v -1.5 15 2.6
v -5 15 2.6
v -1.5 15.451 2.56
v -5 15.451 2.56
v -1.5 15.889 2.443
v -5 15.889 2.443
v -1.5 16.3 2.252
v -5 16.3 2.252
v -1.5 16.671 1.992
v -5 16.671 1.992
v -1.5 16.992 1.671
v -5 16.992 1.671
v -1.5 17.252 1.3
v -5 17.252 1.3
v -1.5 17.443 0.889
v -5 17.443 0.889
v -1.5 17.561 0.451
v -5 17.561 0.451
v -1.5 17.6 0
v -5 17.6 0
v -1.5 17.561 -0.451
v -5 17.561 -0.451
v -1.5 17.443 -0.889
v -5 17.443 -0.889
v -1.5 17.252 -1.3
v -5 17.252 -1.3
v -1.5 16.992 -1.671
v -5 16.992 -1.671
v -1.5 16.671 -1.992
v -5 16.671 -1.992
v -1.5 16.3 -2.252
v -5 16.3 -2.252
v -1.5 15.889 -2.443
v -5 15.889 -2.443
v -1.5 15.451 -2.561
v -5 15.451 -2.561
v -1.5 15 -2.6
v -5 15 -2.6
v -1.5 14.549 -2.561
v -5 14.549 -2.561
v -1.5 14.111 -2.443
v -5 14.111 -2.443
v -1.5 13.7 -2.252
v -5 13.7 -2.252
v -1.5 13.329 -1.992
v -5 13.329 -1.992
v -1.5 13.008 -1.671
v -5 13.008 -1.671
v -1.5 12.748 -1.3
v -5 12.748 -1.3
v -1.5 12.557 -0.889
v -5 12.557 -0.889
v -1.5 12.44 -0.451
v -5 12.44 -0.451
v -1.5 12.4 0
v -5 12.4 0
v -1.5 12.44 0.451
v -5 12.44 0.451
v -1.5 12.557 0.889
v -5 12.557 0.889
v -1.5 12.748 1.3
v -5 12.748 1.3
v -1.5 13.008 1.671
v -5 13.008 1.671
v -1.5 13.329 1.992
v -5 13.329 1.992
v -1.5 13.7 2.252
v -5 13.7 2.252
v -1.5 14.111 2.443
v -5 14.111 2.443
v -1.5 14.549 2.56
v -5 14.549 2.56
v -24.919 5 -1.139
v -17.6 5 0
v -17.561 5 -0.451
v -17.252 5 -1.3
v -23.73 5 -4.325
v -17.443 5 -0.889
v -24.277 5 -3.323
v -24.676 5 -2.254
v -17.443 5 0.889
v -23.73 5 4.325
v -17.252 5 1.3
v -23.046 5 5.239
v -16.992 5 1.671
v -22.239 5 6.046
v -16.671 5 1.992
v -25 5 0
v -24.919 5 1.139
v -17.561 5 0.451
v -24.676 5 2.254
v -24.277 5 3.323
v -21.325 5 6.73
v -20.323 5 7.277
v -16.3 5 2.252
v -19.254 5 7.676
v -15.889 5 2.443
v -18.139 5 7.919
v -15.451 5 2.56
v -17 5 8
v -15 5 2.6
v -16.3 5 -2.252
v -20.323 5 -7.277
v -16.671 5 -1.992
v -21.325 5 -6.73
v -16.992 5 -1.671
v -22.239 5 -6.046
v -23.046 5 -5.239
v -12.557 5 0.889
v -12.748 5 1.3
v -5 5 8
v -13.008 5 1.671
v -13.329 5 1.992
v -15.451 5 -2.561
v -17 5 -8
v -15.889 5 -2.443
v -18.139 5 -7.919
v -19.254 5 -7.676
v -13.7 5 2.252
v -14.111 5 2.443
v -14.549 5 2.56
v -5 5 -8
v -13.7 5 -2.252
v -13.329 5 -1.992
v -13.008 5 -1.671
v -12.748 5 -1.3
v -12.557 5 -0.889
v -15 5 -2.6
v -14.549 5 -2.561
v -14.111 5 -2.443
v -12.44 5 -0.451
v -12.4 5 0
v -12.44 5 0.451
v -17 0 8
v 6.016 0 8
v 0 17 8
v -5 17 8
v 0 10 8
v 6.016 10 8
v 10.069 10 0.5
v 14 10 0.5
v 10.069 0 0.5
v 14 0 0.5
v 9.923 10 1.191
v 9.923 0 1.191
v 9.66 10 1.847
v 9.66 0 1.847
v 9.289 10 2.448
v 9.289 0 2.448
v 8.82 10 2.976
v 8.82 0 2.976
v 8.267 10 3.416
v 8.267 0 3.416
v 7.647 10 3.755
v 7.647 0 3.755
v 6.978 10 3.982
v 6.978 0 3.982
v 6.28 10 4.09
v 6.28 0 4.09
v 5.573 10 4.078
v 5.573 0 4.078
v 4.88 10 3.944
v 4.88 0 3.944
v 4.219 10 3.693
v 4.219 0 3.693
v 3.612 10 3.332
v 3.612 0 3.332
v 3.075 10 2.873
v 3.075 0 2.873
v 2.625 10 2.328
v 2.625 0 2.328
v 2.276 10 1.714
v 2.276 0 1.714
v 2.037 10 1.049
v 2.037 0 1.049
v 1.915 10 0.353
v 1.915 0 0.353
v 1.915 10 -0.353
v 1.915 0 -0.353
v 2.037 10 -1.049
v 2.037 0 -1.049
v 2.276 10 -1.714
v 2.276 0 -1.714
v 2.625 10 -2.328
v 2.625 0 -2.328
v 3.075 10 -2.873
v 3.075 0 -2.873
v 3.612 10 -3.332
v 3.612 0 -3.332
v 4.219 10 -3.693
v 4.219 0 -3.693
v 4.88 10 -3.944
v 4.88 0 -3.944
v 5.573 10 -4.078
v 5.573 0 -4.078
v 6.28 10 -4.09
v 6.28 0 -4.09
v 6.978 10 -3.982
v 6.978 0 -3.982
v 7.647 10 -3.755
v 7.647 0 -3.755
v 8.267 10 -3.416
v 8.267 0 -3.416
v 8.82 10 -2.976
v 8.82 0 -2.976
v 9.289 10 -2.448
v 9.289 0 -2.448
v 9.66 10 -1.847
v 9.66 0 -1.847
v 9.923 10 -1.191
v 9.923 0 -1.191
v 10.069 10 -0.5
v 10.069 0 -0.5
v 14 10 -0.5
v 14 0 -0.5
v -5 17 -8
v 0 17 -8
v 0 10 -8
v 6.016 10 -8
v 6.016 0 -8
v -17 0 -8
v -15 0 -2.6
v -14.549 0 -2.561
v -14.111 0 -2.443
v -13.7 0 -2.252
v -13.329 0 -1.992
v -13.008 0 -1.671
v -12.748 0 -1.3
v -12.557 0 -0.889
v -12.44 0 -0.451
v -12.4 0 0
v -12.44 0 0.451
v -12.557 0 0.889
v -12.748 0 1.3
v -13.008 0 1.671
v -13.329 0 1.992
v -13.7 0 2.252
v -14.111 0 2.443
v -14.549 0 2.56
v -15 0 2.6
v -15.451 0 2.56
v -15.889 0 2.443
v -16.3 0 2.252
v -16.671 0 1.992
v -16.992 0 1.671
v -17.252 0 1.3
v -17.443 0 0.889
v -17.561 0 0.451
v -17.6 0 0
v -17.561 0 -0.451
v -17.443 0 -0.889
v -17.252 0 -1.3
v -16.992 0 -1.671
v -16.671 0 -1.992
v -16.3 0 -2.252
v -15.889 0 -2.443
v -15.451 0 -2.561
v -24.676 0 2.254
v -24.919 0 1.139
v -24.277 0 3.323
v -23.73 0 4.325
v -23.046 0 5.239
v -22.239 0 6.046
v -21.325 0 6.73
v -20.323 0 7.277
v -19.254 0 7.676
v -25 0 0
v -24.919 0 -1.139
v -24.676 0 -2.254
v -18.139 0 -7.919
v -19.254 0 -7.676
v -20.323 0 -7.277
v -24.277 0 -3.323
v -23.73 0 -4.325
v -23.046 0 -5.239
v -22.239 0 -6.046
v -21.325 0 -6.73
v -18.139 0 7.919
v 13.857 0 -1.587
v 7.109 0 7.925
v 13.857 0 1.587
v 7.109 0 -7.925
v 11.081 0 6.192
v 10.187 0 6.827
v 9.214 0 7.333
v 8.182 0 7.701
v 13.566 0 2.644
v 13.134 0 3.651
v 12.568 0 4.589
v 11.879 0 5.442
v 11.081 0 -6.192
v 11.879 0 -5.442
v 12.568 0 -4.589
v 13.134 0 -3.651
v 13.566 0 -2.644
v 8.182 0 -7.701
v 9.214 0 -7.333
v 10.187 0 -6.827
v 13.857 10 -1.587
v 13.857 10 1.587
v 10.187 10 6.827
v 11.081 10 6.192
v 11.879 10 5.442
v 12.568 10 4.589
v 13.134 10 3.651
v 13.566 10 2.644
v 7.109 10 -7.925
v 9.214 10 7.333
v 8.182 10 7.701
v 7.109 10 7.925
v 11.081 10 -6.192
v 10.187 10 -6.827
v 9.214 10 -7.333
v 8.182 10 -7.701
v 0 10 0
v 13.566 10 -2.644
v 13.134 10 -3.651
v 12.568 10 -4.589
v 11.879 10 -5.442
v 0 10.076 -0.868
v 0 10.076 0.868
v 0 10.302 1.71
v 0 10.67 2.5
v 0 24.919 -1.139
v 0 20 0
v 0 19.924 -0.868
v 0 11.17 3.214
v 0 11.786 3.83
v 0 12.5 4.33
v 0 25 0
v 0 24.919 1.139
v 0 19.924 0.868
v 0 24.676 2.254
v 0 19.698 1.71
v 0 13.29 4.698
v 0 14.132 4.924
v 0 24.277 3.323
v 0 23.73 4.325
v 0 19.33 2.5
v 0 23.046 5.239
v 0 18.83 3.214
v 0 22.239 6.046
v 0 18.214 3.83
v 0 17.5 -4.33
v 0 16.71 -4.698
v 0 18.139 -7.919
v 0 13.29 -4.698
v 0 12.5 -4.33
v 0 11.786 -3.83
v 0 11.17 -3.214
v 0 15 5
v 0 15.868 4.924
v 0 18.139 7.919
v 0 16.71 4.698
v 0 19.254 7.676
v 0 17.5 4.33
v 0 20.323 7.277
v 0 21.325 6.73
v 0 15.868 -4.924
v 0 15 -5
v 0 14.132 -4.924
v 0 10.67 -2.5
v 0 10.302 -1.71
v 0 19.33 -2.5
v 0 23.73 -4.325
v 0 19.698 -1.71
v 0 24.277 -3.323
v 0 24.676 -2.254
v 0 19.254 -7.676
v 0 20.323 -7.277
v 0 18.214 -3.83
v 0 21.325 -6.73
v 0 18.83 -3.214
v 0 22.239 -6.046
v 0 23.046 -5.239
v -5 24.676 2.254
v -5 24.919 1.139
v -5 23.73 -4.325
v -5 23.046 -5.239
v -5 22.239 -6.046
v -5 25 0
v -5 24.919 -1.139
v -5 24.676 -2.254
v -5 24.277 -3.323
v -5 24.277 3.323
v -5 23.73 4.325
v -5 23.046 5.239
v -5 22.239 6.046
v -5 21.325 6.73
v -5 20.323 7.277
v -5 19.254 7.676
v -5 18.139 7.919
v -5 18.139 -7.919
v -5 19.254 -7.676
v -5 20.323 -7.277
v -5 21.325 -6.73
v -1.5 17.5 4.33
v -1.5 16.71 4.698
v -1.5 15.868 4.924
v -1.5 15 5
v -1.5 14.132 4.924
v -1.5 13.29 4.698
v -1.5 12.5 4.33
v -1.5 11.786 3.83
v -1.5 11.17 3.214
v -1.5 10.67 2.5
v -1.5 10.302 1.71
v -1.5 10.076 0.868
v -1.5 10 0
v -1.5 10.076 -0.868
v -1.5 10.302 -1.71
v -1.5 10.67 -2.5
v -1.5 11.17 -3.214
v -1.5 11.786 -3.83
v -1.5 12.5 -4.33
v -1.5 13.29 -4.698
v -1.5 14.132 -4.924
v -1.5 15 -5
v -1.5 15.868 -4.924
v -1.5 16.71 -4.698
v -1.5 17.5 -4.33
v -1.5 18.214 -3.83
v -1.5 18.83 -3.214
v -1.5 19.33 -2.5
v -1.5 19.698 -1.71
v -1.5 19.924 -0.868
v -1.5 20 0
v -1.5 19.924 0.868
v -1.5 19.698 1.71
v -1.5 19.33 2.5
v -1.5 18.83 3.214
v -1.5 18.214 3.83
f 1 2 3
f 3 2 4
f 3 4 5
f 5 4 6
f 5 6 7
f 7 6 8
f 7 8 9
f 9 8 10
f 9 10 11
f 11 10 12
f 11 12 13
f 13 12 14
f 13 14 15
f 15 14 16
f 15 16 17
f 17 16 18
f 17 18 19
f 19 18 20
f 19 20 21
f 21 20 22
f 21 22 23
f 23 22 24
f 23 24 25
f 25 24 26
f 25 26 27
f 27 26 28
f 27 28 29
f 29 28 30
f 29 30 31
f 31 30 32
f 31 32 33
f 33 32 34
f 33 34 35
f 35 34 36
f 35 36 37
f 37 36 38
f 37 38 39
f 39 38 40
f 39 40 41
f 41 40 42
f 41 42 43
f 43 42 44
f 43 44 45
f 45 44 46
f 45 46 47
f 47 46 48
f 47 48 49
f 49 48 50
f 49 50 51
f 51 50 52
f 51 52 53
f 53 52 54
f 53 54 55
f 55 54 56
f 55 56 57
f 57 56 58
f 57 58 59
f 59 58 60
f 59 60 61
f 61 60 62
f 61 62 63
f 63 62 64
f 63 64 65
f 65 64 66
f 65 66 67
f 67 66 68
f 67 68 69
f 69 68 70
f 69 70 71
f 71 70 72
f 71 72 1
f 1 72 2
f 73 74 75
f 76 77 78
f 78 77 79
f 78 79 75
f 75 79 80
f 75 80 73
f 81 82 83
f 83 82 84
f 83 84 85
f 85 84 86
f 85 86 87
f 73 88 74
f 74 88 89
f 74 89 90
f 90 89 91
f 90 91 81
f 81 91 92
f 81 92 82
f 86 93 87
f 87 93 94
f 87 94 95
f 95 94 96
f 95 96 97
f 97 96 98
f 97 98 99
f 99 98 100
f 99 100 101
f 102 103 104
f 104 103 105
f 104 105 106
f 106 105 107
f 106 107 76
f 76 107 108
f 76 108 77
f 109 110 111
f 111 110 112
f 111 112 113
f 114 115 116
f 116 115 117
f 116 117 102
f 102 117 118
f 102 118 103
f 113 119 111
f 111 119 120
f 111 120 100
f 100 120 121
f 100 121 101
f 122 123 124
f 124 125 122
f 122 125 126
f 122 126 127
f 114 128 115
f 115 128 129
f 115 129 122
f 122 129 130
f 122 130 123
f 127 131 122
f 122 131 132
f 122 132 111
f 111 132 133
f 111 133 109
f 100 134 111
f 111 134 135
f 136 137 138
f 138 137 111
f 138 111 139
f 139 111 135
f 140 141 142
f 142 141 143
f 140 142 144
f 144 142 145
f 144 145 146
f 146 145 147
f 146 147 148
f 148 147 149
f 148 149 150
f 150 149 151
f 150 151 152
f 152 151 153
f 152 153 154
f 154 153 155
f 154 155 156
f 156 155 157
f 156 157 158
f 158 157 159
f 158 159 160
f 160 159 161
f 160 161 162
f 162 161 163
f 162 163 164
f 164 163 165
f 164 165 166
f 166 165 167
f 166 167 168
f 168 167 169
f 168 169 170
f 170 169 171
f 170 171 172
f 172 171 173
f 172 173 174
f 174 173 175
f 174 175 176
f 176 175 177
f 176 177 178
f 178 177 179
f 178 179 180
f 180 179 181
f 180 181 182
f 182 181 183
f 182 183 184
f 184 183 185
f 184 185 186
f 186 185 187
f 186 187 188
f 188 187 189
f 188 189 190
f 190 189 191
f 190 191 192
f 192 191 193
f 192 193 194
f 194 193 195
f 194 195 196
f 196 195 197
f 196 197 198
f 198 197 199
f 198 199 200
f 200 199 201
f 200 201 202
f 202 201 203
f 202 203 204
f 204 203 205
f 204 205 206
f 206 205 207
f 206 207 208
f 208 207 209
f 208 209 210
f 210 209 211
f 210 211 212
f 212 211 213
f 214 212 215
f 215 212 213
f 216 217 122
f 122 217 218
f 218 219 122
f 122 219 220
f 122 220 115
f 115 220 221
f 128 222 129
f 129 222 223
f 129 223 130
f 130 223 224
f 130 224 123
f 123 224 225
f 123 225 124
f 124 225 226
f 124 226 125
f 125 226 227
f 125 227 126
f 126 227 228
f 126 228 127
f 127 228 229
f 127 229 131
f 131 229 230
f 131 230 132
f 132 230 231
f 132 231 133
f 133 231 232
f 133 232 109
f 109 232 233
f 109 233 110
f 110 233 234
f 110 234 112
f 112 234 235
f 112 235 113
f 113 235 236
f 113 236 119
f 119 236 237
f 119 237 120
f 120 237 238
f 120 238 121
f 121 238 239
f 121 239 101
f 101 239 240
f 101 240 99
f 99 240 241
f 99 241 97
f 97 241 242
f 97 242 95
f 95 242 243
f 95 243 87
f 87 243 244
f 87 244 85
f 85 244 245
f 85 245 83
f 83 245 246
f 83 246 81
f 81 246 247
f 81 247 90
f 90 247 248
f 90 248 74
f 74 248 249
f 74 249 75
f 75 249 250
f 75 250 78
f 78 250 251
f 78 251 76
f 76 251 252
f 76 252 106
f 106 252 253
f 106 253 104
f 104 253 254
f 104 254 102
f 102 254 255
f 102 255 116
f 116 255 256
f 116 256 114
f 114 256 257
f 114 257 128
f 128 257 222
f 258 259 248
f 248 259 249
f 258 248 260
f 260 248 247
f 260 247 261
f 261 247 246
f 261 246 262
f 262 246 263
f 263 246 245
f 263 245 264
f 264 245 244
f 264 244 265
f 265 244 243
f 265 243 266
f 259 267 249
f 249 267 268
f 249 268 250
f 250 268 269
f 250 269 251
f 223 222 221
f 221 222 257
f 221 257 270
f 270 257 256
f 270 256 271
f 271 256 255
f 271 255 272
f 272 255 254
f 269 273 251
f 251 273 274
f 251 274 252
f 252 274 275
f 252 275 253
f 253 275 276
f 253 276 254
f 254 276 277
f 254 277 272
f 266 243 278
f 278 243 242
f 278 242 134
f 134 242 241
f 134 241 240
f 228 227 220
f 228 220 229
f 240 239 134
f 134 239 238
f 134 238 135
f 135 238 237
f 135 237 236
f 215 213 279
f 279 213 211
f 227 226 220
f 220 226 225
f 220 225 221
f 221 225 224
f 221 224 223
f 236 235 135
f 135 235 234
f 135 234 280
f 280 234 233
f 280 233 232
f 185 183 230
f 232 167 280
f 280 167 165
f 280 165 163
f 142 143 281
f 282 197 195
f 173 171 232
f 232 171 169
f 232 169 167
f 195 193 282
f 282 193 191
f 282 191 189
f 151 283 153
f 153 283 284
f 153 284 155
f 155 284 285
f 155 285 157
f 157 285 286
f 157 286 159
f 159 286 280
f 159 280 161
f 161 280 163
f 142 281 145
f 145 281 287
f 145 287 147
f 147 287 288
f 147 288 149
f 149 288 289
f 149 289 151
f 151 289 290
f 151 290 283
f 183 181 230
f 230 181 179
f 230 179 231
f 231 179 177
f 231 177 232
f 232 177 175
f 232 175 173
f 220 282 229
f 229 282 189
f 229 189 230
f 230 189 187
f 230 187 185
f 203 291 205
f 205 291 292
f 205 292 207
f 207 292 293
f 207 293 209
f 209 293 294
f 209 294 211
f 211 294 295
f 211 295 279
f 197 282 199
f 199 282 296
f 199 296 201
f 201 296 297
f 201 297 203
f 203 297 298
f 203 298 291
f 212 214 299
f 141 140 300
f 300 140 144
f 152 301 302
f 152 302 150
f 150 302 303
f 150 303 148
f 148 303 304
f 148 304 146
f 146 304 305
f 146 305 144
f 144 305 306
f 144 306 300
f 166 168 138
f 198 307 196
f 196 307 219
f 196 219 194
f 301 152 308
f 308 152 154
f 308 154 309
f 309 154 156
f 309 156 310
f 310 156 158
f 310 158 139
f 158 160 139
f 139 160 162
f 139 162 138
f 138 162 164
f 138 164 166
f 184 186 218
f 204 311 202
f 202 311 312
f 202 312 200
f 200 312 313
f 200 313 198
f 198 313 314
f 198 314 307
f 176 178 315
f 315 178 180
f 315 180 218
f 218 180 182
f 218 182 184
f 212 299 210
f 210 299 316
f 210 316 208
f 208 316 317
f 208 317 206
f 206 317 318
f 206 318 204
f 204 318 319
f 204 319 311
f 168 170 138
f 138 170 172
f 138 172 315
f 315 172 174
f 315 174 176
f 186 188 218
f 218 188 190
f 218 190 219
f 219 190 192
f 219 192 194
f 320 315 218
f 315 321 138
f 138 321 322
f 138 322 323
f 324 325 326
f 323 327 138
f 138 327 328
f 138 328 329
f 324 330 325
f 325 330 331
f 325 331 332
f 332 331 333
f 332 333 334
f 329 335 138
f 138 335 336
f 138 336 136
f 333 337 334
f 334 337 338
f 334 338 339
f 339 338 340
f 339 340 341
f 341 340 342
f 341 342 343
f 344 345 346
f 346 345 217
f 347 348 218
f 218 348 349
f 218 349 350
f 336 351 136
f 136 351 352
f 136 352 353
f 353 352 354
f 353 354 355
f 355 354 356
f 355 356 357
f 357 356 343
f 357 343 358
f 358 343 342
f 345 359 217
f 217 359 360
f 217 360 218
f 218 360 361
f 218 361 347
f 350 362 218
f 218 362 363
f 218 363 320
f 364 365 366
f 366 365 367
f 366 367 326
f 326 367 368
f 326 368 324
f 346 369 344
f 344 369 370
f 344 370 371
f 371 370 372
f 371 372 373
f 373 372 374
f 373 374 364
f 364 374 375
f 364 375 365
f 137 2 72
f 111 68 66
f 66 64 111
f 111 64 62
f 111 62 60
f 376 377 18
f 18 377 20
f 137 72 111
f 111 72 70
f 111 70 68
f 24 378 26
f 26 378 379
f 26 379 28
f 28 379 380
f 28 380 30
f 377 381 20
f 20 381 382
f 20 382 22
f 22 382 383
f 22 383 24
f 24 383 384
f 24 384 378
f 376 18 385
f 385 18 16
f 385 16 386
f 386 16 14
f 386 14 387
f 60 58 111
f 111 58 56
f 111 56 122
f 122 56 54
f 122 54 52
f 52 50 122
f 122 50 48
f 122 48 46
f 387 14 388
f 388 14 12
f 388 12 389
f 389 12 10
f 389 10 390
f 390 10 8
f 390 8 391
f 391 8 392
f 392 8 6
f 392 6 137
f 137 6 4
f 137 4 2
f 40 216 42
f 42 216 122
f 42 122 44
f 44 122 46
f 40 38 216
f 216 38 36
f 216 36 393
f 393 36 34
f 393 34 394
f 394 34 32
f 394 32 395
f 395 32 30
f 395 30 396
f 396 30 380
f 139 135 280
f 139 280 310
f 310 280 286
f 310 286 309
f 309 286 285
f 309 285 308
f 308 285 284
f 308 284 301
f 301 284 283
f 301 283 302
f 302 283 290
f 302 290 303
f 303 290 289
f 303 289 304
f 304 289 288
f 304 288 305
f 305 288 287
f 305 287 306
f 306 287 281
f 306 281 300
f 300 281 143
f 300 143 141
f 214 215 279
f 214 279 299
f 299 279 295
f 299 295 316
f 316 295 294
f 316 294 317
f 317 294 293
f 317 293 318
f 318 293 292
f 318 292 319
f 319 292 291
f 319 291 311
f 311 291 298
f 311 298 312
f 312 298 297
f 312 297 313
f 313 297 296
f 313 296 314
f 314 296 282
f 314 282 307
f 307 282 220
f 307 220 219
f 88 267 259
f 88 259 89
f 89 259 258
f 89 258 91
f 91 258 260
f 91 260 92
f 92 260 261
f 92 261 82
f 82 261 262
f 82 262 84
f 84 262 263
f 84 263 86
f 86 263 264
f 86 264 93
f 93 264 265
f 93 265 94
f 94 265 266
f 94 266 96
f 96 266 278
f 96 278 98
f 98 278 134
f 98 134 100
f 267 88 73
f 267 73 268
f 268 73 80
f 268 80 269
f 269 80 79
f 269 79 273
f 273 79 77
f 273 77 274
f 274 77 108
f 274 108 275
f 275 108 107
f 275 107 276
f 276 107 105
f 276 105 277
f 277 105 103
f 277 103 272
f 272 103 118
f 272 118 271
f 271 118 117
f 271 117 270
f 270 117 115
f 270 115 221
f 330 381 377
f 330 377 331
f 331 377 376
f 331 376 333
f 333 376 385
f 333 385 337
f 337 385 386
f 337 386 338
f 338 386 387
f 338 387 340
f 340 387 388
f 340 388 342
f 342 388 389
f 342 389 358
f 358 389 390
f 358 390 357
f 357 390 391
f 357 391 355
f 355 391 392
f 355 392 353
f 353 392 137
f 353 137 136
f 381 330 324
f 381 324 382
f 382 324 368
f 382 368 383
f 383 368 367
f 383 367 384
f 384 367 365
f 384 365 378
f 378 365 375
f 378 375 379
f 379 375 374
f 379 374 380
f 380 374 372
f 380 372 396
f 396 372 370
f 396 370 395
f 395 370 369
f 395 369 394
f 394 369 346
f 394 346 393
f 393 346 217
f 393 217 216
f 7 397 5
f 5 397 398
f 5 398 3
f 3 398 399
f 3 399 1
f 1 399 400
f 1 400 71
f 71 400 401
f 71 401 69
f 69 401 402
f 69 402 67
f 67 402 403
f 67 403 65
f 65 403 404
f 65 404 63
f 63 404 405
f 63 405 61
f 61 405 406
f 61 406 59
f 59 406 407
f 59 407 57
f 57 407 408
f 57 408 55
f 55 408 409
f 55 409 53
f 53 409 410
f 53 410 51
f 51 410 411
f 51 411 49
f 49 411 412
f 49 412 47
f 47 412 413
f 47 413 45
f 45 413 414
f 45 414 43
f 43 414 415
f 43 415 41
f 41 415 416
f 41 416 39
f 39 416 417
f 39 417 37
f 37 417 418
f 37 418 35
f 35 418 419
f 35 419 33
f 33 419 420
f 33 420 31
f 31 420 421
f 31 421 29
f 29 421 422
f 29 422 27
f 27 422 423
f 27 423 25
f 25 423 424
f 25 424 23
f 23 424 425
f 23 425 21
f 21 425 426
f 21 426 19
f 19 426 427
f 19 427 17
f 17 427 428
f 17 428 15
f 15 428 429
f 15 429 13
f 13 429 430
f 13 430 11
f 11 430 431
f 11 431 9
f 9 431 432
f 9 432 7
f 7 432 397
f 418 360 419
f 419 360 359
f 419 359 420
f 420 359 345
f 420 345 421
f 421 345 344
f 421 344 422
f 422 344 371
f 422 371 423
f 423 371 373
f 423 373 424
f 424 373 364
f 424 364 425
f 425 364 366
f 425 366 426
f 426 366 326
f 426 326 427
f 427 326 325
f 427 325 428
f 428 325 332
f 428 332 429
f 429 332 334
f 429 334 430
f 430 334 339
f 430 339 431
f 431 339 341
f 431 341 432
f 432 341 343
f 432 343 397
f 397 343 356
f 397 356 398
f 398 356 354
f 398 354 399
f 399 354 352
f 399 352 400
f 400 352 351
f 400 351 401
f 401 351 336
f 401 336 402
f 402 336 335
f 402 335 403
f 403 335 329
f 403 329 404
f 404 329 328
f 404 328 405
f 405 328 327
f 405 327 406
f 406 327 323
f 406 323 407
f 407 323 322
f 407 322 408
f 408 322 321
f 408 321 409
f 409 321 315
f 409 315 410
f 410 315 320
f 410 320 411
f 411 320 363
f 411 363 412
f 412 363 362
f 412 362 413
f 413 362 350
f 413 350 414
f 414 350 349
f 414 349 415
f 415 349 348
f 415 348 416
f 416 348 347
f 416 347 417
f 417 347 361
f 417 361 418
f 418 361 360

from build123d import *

# Parameters (mm, degrees)
SKETCH1_R           = 2.6
BOSS_EXTRUDE2_DEPTH = 5
BOSS_EXTRUDE3_DEPTH = 10
SKETCH1_5_W         = 5
SKETCH1_5_H         = 16
BOSS_EXTRUDE4_DEPTH = 25
FILLET1_R           = 8
FILLET2_R           = 8
FILLET3_R           = 8
FILLET4_R           = 8
FILLET5_R           = 8
FILLET6_R           = 8
SKETCH3_R           = 2.6
CUT_EXTRUDE1_DEPTH  = 25
SKETCH4_R           = 5
CUT_EXTRUDE2_DEPTH  = 1.5


# Some blends are built 0.0001 mm under size
with BuildPart() as part:
    # Sketch1 → Boss-Extrude2 (new body)
    with BuildSketch(Plane(origin=(0, 0, 0), x_dir=(1, 0, 0), z_dir=(0, 1, 0))):
        with BuildLine():
            Line((-25, 8), (-25, -8))
            Line((-25, -8), (14, -8))
            Line((14, -8), (14, -0.5))
            Line((14, -0.5), (10.06939799, -0.5))
            ThreePointArc((10.06939799, -0.5), (1.9, 0), (10.06939799, 0.5))
            Line((10.06939799, 0.5), (14, 0.5))
            Line((14, 0.5), (14, 8))
            Line((14, 8), (-25, 8))
        make_face()
        with Locations(Location((-15, 0, 0), (0, 0, 270))):
            Circle(SKETCH1_R, mode=Mode.SUBTRACT)
    extrude(amount=BOSS_EXTRUDE2_DEPTH)

    # Sketch1<4> → Boss-Extrude3 (add)
    with BuildSketch(Plane(origin=(0, 0, 0), x_dir=(1, 0, 0), z_dir=(0, 1, 0))):
        with BuildLine():
            Line((14, 8), (0, 8))
            Line((0, 8), (0, -8))
            Line((0, -8), (14, -8))
            Line((14, -8), (14, -0.5))
            Line((14, -0.5), (10.06939799, -0.5))
            ThreePointArc((10.06939799, -0.5), (1.9, 0), (10.06939799, 0.5))
            Line((10.06939799, 0.5), (14, 0.5))
            Line((14, 0.5), (14, 8))
        make_face()
    extrude(amount=BOSS_EXTRUDE3_DEPTH)

    # Sketch1<5> → Boss-Extrude4 (add)
    with BuildSketch(Plane(origin=(0, 0, 0), x_dir=(1, 0, 0), z_dir=(0, 1, 0))):
        with Locations((-2.5, 0)):
            Rectangle(SKETCH1_5_W, SKETCH1_5_H)
    extrude(amount=BOSS_EXTRUDE4_DEPTH)

    # Fillet1
    # the kernel refuses this fillet: 8 mm, written as the material it takes off along each edge
    with BuildSketch(Plane(origin=(14, 29.960899278, 8), x_dir=(0, 0, -1), z_dir=(0, -1, 0))) as fillet1_piece_1:
        with BuildLine():
            CenterArc((8, -7.984359711), FILLET1_R, 93.583321698, 86.416678302)
            Line((0, -7.984359711), (-0.16, -7.984359711))
            Line((-0.16, -7.984359711), (-0.16, 0))
            Line((-0.16, 0), (0, 0.16))
            ThreePointArc((0, 0.16), (3.75, 0.16), (7.49, 0.159687194))
            Line((7.49, 0.159687194), (7.5, 0))
        make_face()
    extrude(amount=49.921798557, mode=Mode.SUBTRACT)

    # Fillet2
    # the kernel refuses this fillet: 8 mm, written as the material it takes off along each edge
    with BuildSketch(Plane(origin=(14, -19.960899278, -8), x_dir=(0, 0, 1), z_dir=(0, 1, 0))) as fillet2_piece_1:
        with BuildLine():
            CenterArc((8, -7.984359711), FILLET2_R, 93.583321698, 86.416678302)
            Line((0, -7.984359711), (-0.16, -7.984359711))
            Line((-0.16, -7.984359711), (-0.16, 0))
            Line((-0.16, 0), (0, 0.16))
            ThreePointArc((0, 0.16), (3.75, 0.16), (7.49, 0.159687194))
            Line((7.49, 0.159687194), (7.5, 0))
        make_face()
    extrude(amount=49.921798557, mode=Mode.SUBTRACT)

    # Fillet3
    fillet3_edges = [part.edges().sort_by_distance(p)[0] for p in [
        (-25, 2.5, 8),
    ]]
    fillet(fillet3_edges, radius=FILLET3_R)

    # Fillet4
    fillet4_edges = [part.edges().sort_by_distance(p)[0] for p in [
        (-25, 2.5, -8),
    ]]
    fillet(fillet4_edges, radius=FILLET4_R - 0.0001)  # a hair under: the kernel refuses the full size

    # Fillet5
    fillet5_edges = [part.edges().sort_by_distance(p)[0] for p in [
        (-2.5, 25, 8),
    ]]
    fillet(fillet5_edges, radius=FILLET5_R)

    # Fillet6
    fillet6_edges = [part.edges().sort_by_distance(p)[0] for p in [
        (-2.5, 25, -8),
    ]]
    fillet(fillet6_edges, radius=FILLET6_R - 0.0001)  # a hair under: the kernel refuses the full size

    # Sketch3 → Cut-Extrude1 (cut)
    with BuildSketch(Plane.ZY.offset(5)):
        with Locations((0, 15)):
            Circle(SKETCH3_R)
    extrude(amount=-CUT_EXTRUDE1_DEPTH, mode=Mode.SUBTRACT)

    # Sketch4 → Cut-Extrude2 (cut)
    with BuildSketch(Plane(origin=(0, 0, 0), x_dir=(0, 0, -1), z_dir=(1, 0, 0))):
        with Locations((0, 15)):
            Circle(SKETCH4_R)
    extrude(amount=-CUT_EXTRUDE2_DEPTH, mode=Mode.SUBTRACT)


solid = part.part
